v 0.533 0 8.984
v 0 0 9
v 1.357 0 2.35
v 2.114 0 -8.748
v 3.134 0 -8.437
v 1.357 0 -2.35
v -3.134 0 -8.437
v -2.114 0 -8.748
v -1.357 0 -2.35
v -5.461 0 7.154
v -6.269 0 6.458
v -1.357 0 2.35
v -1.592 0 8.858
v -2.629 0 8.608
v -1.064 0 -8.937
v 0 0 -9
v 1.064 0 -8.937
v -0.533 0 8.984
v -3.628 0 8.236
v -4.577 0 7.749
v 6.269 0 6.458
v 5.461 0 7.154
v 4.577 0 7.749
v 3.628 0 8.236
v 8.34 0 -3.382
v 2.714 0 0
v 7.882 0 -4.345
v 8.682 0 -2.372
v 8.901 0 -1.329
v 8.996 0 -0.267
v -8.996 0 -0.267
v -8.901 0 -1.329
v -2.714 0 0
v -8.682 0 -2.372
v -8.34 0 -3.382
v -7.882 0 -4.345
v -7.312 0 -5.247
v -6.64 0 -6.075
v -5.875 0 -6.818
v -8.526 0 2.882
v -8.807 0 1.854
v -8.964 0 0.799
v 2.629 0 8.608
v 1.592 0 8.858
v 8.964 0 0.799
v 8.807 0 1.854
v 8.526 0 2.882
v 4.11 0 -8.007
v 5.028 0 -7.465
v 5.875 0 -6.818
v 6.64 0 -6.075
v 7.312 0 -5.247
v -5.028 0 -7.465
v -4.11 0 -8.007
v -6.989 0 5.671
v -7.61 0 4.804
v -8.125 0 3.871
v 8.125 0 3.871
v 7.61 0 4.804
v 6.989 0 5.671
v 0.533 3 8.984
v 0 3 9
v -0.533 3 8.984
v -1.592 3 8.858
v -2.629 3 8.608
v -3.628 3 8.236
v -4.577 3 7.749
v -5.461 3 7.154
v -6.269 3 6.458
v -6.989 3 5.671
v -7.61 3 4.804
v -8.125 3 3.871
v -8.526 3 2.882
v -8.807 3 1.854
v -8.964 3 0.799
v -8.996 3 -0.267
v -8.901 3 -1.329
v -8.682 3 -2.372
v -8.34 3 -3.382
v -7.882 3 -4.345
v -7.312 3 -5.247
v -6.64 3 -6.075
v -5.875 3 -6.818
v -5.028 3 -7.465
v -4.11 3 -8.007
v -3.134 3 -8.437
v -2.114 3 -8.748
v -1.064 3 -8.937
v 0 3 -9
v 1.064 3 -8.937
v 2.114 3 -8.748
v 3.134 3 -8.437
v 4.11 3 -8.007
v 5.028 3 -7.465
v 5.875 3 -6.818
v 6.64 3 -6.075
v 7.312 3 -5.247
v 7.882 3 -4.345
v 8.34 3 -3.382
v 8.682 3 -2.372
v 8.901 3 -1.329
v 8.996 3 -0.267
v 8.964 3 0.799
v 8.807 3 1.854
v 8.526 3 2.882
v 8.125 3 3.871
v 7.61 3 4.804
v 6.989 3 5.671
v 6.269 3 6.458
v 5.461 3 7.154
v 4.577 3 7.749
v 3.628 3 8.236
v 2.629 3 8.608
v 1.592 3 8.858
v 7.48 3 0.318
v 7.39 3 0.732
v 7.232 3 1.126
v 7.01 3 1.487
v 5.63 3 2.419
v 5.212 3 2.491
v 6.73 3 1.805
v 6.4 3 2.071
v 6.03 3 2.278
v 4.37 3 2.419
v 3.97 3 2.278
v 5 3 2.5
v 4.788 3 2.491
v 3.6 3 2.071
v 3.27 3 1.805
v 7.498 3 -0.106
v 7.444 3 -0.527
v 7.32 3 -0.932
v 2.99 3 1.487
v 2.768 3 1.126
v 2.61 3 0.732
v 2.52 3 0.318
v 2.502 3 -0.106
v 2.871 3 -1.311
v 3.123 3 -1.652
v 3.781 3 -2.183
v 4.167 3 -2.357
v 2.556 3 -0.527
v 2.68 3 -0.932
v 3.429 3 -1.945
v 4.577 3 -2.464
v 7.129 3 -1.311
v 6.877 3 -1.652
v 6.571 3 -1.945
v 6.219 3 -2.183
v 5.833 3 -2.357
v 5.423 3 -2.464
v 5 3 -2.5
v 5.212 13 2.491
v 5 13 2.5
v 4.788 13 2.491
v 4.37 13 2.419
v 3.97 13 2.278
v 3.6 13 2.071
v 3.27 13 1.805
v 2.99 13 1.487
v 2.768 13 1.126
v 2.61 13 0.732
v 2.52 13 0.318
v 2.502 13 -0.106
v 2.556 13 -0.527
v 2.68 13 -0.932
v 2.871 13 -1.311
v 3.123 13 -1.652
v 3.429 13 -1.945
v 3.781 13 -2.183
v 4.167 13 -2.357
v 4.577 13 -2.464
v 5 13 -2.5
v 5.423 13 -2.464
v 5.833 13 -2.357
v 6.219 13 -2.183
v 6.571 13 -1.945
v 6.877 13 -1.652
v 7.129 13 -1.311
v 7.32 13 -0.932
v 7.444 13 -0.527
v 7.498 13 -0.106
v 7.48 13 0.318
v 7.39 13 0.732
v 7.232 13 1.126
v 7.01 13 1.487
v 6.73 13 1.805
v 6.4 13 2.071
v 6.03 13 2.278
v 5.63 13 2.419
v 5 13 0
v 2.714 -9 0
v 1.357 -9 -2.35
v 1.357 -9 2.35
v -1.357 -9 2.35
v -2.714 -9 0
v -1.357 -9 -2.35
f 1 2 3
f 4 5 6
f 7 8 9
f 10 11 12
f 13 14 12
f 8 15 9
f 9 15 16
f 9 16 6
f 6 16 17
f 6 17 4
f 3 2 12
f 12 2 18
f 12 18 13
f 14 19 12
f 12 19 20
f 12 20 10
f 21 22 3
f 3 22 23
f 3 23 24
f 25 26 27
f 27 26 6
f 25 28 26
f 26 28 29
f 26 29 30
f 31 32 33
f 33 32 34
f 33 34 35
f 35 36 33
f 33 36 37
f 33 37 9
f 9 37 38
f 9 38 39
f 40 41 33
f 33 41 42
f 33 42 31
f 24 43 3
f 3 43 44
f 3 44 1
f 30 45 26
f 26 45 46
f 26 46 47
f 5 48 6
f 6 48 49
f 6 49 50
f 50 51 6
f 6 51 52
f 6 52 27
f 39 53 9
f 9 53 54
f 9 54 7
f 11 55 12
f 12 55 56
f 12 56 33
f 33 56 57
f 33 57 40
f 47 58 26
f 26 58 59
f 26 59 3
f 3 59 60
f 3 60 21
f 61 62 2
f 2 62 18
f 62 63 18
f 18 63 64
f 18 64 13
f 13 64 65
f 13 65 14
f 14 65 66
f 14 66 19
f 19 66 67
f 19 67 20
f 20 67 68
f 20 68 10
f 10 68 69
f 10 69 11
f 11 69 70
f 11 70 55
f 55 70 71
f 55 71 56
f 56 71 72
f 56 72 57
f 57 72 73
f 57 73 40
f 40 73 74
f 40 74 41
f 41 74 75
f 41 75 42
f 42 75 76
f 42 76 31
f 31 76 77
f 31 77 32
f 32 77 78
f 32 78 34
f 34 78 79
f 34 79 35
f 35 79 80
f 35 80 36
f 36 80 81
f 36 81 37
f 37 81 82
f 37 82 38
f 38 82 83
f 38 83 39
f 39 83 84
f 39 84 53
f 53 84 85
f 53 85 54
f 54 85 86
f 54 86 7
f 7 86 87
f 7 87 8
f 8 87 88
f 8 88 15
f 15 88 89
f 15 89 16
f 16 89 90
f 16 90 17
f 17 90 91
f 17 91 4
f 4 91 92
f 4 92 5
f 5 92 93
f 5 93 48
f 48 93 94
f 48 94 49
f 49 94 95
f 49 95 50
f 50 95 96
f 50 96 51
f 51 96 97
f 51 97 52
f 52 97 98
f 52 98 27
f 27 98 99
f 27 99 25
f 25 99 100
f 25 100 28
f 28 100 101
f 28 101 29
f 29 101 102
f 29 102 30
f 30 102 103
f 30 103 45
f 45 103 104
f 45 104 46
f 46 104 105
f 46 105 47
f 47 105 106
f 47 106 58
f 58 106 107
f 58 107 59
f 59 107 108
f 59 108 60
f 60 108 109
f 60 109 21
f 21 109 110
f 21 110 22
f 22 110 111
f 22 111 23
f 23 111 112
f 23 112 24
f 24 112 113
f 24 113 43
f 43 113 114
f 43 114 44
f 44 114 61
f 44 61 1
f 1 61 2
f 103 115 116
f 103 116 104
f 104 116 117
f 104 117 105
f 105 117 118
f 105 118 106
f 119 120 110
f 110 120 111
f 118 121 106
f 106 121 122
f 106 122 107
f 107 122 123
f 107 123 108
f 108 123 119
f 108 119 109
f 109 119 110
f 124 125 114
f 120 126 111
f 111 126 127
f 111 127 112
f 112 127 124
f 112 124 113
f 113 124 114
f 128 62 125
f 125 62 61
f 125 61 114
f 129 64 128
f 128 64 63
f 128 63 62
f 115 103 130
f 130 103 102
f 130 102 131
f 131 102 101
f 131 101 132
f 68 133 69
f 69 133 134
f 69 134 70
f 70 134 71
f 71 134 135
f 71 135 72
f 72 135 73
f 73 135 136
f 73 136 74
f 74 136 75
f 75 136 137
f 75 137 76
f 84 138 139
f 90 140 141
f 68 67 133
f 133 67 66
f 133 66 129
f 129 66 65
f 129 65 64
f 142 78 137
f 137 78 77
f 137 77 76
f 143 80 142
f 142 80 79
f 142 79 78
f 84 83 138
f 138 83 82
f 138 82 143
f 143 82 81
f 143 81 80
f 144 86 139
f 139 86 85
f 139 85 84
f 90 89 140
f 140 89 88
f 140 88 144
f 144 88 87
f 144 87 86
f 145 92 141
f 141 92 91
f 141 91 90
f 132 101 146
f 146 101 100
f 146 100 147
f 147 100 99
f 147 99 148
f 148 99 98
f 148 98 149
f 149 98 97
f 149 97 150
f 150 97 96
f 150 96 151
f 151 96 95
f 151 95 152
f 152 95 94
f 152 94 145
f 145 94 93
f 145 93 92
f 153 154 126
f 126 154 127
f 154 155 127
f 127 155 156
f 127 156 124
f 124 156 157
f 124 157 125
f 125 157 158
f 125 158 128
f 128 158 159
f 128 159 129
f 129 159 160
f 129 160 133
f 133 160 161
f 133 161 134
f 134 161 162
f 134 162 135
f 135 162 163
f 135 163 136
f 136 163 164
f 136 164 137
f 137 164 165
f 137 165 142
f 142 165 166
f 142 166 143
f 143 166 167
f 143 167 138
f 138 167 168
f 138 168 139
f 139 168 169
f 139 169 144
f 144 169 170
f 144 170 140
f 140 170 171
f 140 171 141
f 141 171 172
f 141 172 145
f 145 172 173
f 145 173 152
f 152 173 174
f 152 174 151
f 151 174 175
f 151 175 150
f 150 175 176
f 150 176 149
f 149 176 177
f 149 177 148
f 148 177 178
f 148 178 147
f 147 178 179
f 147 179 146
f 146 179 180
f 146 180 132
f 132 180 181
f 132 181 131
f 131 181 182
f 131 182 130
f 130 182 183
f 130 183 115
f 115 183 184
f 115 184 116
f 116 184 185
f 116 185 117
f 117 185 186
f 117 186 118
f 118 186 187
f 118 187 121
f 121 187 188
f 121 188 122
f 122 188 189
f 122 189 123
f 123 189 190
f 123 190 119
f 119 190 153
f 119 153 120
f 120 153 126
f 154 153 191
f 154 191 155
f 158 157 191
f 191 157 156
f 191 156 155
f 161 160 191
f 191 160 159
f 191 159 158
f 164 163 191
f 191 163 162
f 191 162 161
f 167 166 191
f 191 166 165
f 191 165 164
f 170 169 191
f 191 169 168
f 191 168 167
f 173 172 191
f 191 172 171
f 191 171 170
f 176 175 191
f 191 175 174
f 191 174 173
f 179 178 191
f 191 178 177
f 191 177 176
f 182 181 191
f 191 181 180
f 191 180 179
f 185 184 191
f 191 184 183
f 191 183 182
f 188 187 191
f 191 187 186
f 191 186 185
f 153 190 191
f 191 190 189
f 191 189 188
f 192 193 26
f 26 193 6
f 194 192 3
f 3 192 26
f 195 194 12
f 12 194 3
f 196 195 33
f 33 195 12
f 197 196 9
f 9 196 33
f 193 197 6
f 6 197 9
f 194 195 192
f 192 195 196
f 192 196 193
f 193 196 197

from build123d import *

# Parameters (mm, degrees)
SKETCH1_R           = 9
BOSS_EXTRUDE1_DEPTH = 3
SKETCH2_R           = 2.5
BOSS_EXTRUDE2_DEPTH = 10
BOSS_EXTRUDE3_DEPTH = 9


with BuildPart() as part:
    # Sketch1 → Boss-Extrude1 (new body)
    with BuildSketch(Plane(origin=(0, 0, 0), x_dir=(1, 0, 0), z_dir=(0, 1, 0))):
        Circle(SKETCH1_R)
    extrude(amount=BOSS_EXTRUDE1_DEPTH)

    # Sketch2 → Boss-Extrude2 (add)
    with BuildSketch(Plane(origin=(0, 3, 0), x_dir=(1, 0, 0), z_dir=(0, 1, 0))):
        with Locations((5, 0)):
            Circle(SKETCH2_R)
    extrude(amount=BOSS_EXTRUDE2_DEPTH)

    # Sketch3 → Boss-Extrude3 (add)
    with BuildSketch(Plane.XZ):
        Polygon((2.713546265, 0), (1.356773133, 2.35), (-1.356773133, 2.35), (-2.713546265, 0), (-1.356773133, -2.35), (1.356773133, -2.35), align=None)
    extrude(amount=BOSS_EXTRUDE3_DEPTH)


solid = part.part
